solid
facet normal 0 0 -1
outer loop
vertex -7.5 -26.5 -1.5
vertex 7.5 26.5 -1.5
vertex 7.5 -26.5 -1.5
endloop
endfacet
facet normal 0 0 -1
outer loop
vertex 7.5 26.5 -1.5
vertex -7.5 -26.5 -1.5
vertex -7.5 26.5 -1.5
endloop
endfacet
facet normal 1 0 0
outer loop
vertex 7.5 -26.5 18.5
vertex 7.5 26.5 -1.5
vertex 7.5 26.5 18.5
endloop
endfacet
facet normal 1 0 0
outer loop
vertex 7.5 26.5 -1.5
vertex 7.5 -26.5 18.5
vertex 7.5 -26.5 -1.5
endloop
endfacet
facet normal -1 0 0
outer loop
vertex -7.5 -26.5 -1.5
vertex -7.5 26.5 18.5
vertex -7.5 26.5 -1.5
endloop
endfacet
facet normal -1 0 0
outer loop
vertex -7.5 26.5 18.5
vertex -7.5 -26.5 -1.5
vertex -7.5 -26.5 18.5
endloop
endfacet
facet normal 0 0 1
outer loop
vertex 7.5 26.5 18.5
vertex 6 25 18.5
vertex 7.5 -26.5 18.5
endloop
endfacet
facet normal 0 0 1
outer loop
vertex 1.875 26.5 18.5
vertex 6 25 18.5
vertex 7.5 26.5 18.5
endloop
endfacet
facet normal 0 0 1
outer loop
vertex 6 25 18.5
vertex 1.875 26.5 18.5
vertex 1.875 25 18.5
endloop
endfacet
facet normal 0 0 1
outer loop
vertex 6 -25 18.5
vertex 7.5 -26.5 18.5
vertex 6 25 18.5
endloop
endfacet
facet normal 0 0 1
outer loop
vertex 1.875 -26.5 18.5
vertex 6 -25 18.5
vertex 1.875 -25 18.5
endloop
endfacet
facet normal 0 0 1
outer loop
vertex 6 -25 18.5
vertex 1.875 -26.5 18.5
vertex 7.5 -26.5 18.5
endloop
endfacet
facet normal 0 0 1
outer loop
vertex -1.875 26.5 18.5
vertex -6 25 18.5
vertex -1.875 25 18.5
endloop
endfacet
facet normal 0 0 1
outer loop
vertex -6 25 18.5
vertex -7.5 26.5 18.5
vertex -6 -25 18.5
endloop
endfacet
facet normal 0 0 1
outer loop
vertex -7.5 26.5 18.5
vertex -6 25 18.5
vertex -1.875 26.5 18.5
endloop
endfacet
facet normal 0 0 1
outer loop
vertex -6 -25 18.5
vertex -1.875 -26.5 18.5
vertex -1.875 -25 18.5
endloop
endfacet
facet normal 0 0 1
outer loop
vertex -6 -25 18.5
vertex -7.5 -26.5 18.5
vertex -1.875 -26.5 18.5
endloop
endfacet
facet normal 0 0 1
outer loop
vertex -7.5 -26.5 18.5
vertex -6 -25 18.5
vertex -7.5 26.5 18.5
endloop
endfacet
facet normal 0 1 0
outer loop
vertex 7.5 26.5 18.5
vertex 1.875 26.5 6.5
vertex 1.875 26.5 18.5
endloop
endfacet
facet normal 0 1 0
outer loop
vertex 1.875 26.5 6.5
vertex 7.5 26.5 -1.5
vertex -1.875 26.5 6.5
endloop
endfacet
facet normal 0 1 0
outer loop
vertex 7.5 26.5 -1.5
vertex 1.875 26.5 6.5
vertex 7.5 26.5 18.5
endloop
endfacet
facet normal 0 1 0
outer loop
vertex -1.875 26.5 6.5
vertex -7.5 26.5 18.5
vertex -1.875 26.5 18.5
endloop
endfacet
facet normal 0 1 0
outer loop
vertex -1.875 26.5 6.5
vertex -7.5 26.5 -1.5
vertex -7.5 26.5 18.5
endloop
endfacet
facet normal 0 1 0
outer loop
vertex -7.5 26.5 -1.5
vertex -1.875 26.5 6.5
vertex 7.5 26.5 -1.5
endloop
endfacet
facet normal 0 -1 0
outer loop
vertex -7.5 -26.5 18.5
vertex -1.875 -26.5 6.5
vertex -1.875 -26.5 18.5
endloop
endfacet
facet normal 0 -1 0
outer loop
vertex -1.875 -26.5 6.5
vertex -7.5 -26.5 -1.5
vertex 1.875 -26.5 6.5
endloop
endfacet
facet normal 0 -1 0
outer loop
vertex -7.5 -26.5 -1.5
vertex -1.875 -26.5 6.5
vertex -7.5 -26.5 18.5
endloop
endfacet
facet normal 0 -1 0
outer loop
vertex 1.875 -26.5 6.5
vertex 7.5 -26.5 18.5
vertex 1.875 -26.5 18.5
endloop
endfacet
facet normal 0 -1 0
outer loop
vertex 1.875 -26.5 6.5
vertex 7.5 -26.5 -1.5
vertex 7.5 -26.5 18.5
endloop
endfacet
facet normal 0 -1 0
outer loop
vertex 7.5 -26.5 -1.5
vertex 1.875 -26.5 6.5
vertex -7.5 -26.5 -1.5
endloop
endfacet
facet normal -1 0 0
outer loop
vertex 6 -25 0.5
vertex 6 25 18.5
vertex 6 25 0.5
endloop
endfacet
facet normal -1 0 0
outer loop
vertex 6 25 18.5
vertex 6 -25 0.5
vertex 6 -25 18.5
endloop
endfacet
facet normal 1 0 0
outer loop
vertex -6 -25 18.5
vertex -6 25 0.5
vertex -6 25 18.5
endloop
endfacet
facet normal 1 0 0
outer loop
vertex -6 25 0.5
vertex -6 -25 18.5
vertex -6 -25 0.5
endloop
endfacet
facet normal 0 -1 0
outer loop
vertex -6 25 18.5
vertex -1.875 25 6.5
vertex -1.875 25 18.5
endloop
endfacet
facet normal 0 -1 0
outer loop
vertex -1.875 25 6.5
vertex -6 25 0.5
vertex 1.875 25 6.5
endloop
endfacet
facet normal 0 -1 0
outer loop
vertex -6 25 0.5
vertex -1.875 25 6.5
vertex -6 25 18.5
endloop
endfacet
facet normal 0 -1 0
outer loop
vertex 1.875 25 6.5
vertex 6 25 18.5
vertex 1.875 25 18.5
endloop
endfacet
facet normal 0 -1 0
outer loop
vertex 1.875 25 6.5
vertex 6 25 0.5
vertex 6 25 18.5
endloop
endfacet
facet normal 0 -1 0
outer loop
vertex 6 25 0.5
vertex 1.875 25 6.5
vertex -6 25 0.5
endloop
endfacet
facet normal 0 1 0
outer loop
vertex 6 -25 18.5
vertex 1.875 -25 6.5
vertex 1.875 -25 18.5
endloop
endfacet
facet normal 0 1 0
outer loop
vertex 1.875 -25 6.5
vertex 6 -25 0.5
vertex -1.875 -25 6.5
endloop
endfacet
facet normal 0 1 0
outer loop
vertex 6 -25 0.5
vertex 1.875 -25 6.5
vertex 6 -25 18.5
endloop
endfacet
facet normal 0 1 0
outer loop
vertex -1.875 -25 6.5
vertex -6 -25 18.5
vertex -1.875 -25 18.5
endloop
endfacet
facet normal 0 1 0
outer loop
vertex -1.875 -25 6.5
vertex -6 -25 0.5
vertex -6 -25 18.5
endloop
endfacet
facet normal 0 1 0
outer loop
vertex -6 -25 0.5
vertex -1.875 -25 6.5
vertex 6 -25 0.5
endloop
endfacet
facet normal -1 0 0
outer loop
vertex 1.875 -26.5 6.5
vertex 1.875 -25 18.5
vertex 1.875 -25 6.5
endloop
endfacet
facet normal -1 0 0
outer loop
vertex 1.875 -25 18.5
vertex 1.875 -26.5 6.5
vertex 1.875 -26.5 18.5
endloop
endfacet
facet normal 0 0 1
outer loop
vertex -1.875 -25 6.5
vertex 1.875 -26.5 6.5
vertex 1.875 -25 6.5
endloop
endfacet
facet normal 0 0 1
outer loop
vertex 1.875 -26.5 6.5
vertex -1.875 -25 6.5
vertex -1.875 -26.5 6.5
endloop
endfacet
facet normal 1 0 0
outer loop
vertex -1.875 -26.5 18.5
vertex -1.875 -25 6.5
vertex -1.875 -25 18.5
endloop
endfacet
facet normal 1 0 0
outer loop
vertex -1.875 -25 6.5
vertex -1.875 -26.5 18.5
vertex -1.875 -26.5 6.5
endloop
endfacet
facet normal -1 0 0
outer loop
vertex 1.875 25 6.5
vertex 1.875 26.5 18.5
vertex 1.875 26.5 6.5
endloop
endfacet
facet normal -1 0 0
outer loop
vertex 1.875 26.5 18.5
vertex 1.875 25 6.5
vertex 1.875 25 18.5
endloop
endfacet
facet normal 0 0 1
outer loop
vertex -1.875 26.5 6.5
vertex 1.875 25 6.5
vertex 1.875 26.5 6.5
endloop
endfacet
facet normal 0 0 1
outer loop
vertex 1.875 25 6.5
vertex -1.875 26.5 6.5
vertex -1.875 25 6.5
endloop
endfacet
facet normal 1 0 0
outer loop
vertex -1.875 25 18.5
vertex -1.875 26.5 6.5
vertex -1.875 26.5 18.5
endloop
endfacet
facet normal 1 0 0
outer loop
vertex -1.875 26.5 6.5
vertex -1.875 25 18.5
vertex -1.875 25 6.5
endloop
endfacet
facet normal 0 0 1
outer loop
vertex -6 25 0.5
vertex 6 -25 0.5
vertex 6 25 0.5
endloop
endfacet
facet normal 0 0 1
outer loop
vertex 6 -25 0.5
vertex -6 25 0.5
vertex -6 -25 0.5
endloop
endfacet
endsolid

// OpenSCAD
$fn = 30;
Wb = 17;
Lb = 50;
Hb = 12;
D = 3;

buckholder(Wb,Lb,Hb);

module buckholder(Wb,Lb,Hb,D = 3){
difference(){
translate([0,0,Wb/2]){
rotate([0,90,0]){
difference(){
cube([Wb+D,Lb+D,Hb+D],center = true);
cube([2*Wb,Lb,Hb],center = true);
}}}

for(i=[-1,1]){
translate([0,i*Lb/2,14]){
cube([1.25*D,Wb/2,15],center =true);
}}
}

translate([0,0,-.5]){
cube([Hb,Lb,2],center=true);
}
}
